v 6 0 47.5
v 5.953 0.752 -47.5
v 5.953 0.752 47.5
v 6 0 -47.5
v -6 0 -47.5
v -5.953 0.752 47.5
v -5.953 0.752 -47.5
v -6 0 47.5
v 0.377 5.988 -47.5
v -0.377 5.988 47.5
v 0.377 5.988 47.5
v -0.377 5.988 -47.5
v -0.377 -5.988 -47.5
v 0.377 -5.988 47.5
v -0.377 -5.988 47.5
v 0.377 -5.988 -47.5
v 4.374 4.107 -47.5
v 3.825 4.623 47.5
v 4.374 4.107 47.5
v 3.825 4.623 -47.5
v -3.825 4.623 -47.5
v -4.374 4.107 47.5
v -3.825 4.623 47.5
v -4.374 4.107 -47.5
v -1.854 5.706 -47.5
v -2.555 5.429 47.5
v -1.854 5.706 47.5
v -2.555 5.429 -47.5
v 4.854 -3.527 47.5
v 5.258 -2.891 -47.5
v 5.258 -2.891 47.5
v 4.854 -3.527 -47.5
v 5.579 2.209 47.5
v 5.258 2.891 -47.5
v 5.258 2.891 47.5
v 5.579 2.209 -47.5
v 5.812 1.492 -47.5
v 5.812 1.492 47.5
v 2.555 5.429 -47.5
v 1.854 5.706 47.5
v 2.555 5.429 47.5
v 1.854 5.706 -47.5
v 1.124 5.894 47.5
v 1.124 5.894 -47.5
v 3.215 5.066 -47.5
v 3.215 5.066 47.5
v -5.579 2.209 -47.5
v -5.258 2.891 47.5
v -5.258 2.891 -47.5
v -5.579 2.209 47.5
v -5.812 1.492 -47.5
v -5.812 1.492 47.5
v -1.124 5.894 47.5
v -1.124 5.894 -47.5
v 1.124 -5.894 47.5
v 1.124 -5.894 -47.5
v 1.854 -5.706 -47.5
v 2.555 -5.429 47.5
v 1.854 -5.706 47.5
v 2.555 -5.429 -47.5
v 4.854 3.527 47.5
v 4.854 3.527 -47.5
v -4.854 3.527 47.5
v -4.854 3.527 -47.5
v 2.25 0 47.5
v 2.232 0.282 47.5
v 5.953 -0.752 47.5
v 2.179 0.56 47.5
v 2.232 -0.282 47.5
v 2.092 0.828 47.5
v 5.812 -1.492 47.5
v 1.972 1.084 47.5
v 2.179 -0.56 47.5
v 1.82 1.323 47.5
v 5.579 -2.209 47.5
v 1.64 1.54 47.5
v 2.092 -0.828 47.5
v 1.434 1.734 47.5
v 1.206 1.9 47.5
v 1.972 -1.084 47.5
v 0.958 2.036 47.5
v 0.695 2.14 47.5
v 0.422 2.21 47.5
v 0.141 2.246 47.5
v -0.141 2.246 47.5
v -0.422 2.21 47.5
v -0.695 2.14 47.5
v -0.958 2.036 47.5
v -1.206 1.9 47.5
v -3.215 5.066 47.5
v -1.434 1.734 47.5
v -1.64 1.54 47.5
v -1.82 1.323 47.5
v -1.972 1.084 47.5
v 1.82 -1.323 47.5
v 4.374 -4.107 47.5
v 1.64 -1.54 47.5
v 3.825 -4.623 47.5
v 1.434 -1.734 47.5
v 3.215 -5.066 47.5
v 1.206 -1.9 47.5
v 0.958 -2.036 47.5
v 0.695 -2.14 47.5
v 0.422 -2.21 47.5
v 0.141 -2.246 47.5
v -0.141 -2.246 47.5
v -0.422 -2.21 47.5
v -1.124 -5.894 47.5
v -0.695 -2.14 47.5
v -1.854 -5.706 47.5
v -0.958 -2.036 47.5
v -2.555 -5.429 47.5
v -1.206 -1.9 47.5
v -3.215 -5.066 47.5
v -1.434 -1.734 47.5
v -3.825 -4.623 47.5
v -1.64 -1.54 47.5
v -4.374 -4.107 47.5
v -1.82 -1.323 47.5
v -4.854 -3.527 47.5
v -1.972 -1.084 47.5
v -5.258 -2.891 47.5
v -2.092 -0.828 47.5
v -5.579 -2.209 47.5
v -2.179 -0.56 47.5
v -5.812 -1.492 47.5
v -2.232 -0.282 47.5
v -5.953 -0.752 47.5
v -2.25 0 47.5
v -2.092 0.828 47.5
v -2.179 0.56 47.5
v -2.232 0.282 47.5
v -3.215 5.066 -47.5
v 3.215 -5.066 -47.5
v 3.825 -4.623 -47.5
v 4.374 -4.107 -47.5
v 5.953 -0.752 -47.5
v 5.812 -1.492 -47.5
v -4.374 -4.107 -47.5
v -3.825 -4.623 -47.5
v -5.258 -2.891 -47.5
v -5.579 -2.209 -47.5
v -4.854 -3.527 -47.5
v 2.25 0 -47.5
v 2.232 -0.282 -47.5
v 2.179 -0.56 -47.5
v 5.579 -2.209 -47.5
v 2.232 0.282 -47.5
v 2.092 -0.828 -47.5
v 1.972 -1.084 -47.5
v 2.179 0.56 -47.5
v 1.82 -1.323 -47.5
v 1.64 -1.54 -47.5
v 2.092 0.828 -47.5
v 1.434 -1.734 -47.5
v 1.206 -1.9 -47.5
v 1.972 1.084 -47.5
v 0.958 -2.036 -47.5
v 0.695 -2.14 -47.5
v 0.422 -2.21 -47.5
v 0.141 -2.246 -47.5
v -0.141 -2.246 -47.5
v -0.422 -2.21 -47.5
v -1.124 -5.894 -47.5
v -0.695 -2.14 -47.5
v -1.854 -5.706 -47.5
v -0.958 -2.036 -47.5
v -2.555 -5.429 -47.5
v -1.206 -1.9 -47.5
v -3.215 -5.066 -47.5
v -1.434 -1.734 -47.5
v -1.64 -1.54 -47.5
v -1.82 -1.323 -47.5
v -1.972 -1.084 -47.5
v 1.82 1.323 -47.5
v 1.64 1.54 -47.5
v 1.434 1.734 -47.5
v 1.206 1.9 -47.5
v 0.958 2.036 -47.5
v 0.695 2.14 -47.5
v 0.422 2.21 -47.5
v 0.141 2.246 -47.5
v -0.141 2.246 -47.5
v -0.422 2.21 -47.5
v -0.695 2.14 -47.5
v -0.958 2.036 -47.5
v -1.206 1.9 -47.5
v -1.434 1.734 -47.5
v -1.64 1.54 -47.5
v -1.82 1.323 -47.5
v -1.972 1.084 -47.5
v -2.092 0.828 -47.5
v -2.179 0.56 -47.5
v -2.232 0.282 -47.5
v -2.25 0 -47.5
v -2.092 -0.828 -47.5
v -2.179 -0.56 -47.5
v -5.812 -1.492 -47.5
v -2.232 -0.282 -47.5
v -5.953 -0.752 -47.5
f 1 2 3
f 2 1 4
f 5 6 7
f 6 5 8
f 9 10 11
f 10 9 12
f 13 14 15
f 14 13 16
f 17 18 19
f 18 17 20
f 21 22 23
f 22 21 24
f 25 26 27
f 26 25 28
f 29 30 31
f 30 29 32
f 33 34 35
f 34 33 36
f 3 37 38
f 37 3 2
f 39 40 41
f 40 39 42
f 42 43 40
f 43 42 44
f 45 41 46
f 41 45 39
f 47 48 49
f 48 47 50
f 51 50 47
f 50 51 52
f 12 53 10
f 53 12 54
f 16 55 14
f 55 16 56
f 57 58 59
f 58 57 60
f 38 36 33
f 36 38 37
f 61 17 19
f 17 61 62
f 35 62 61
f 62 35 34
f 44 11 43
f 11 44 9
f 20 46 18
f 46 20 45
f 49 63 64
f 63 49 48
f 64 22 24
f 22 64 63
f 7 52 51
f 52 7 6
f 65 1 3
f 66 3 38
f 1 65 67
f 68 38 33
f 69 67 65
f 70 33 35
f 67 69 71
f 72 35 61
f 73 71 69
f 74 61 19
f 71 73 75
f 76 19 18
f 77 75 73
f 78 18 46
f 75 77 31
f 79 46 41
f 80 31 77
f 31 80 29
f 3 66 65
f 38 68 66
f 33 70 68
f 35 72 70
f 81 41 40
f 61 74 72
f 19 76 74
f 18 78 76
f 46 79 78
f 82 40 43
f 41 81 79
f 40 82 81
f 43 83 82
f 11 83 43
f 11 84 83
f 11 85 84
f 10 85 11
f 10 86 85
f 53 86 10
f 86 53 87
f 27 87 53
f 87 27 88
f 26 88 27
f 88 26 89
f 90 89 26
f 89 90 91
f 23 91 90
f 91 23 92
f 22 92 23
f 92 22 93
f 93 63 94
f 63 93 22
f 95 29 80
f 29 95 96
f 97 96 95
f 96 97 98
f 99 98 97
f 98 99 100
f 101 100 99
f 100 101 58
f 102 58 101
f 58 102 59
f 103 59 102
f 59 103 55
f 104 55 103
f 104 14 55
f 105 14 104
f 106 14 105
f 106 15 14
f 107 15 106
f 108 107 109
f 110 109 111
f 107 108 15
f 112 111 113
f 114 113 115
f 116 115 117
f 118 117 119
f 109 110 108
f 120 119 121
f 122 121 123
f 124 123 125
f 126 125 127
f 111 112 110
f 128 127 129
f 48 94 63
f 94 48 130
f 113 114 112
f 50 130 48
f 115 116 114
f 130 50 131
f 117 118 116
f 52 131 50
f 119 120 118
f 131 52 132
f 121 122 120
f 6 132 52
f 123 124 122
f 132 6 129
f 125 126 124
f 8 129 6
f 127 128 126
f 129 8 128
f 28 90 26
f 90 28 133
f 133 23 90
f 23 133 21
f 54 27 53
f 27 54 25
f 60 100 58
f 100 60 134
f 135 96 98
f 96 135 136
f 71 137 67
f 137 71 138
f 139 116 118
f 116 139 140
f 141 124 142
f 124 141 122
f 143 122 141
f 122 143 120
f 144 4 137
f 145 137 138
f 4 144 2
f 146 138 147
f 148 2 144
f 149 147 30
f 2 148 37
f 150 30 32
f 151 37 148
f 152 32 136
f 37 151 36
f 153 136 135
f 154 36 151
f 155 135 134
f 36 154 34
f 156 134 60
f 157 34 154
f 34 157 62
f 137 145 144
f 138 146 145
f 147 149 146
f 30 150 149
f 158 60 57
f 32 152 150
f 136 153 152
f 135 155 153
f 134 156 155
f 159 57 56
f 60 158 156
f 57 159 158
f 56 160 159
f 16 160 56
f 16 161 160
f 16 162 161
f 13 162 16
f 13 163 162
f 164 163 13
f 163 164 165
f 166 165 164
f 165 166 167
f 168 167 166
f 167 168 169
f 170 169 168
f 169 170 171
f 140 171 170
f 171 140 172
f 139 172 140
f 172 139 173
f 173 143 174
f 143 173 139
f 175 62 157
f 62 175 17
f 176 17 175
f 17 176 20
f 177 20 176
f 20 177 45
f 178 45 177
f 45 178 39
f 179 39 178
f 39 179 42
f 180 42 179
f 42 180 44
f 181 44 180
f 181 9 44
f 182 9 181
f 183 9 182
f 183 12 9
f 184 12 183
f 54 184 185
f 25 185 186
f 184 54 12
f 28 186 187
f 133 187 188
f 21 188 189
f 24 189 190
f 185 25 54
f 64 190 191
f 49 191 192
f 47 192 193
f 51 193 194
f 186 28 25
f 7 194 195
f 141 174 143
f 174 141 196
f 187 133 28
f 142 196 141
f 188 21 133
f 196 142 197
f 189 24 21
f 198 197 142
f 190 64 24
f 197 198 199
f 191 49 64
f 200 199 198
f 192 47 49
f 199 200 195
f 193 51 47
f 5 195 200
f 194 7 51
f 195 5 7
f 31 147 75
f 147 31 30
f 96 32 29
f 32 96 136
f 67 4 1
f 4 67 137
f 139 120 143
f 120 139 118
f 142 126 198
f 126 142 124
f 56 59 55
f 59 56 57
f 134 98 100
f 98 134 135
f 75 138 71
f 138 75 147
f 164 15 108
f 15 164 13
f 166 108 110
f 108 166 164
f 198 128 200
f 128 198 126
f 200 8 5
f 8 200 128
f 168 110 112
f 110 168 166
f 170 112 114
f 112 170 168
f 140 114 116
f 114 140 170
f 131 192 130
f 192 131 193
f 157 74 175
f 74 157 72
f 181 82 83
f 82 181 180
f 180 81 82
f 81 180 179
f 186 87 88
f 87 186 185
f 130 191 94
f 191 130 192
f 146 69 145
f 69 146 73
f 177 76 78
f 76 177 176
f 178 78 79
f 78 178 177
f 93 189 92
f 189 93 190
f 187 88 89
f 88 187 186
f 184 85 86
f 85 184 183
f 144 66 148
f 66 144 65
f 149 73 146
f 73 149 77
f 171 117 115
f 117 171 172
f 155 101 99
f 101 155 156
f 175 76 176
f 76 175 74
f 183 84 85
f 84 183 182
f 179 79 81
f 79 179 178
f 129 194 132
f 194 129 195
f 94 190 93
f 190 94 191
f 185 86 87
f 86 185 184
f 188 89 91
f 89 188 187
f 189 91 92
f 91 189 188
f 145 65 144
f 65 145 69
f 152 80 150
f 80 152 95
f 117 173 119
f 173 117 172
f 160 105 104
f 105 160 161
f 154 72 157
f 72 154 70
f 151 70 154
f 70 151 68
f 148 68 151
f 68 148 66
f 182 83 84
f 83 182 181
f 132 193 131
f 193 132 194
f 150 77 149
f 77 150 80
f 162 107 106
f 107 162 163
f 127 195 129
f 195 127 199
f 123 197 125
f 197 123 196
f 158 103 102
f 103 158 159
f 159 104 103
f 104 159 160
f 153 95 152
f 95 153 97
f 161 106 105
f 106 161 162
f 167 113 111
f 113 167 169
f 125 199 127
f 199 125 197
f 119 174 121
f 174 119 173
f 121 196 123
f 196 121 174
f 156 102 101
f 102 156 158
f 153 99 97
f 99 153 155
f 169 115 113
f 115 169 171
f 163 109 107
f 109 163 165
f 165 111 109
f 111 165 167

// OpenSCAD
$fn = 50;


difference() {
	union() {
		translate(v = [0, 0, -47.5000000000]) {
			cylinder(h = 95, r = 6.0000000000);
		}
	}
	union() {
		translate(v = [0, 0, -100.0000000000]) {
			cylinder(h = 200, r = 2.2500000000);
		}
	}
}
